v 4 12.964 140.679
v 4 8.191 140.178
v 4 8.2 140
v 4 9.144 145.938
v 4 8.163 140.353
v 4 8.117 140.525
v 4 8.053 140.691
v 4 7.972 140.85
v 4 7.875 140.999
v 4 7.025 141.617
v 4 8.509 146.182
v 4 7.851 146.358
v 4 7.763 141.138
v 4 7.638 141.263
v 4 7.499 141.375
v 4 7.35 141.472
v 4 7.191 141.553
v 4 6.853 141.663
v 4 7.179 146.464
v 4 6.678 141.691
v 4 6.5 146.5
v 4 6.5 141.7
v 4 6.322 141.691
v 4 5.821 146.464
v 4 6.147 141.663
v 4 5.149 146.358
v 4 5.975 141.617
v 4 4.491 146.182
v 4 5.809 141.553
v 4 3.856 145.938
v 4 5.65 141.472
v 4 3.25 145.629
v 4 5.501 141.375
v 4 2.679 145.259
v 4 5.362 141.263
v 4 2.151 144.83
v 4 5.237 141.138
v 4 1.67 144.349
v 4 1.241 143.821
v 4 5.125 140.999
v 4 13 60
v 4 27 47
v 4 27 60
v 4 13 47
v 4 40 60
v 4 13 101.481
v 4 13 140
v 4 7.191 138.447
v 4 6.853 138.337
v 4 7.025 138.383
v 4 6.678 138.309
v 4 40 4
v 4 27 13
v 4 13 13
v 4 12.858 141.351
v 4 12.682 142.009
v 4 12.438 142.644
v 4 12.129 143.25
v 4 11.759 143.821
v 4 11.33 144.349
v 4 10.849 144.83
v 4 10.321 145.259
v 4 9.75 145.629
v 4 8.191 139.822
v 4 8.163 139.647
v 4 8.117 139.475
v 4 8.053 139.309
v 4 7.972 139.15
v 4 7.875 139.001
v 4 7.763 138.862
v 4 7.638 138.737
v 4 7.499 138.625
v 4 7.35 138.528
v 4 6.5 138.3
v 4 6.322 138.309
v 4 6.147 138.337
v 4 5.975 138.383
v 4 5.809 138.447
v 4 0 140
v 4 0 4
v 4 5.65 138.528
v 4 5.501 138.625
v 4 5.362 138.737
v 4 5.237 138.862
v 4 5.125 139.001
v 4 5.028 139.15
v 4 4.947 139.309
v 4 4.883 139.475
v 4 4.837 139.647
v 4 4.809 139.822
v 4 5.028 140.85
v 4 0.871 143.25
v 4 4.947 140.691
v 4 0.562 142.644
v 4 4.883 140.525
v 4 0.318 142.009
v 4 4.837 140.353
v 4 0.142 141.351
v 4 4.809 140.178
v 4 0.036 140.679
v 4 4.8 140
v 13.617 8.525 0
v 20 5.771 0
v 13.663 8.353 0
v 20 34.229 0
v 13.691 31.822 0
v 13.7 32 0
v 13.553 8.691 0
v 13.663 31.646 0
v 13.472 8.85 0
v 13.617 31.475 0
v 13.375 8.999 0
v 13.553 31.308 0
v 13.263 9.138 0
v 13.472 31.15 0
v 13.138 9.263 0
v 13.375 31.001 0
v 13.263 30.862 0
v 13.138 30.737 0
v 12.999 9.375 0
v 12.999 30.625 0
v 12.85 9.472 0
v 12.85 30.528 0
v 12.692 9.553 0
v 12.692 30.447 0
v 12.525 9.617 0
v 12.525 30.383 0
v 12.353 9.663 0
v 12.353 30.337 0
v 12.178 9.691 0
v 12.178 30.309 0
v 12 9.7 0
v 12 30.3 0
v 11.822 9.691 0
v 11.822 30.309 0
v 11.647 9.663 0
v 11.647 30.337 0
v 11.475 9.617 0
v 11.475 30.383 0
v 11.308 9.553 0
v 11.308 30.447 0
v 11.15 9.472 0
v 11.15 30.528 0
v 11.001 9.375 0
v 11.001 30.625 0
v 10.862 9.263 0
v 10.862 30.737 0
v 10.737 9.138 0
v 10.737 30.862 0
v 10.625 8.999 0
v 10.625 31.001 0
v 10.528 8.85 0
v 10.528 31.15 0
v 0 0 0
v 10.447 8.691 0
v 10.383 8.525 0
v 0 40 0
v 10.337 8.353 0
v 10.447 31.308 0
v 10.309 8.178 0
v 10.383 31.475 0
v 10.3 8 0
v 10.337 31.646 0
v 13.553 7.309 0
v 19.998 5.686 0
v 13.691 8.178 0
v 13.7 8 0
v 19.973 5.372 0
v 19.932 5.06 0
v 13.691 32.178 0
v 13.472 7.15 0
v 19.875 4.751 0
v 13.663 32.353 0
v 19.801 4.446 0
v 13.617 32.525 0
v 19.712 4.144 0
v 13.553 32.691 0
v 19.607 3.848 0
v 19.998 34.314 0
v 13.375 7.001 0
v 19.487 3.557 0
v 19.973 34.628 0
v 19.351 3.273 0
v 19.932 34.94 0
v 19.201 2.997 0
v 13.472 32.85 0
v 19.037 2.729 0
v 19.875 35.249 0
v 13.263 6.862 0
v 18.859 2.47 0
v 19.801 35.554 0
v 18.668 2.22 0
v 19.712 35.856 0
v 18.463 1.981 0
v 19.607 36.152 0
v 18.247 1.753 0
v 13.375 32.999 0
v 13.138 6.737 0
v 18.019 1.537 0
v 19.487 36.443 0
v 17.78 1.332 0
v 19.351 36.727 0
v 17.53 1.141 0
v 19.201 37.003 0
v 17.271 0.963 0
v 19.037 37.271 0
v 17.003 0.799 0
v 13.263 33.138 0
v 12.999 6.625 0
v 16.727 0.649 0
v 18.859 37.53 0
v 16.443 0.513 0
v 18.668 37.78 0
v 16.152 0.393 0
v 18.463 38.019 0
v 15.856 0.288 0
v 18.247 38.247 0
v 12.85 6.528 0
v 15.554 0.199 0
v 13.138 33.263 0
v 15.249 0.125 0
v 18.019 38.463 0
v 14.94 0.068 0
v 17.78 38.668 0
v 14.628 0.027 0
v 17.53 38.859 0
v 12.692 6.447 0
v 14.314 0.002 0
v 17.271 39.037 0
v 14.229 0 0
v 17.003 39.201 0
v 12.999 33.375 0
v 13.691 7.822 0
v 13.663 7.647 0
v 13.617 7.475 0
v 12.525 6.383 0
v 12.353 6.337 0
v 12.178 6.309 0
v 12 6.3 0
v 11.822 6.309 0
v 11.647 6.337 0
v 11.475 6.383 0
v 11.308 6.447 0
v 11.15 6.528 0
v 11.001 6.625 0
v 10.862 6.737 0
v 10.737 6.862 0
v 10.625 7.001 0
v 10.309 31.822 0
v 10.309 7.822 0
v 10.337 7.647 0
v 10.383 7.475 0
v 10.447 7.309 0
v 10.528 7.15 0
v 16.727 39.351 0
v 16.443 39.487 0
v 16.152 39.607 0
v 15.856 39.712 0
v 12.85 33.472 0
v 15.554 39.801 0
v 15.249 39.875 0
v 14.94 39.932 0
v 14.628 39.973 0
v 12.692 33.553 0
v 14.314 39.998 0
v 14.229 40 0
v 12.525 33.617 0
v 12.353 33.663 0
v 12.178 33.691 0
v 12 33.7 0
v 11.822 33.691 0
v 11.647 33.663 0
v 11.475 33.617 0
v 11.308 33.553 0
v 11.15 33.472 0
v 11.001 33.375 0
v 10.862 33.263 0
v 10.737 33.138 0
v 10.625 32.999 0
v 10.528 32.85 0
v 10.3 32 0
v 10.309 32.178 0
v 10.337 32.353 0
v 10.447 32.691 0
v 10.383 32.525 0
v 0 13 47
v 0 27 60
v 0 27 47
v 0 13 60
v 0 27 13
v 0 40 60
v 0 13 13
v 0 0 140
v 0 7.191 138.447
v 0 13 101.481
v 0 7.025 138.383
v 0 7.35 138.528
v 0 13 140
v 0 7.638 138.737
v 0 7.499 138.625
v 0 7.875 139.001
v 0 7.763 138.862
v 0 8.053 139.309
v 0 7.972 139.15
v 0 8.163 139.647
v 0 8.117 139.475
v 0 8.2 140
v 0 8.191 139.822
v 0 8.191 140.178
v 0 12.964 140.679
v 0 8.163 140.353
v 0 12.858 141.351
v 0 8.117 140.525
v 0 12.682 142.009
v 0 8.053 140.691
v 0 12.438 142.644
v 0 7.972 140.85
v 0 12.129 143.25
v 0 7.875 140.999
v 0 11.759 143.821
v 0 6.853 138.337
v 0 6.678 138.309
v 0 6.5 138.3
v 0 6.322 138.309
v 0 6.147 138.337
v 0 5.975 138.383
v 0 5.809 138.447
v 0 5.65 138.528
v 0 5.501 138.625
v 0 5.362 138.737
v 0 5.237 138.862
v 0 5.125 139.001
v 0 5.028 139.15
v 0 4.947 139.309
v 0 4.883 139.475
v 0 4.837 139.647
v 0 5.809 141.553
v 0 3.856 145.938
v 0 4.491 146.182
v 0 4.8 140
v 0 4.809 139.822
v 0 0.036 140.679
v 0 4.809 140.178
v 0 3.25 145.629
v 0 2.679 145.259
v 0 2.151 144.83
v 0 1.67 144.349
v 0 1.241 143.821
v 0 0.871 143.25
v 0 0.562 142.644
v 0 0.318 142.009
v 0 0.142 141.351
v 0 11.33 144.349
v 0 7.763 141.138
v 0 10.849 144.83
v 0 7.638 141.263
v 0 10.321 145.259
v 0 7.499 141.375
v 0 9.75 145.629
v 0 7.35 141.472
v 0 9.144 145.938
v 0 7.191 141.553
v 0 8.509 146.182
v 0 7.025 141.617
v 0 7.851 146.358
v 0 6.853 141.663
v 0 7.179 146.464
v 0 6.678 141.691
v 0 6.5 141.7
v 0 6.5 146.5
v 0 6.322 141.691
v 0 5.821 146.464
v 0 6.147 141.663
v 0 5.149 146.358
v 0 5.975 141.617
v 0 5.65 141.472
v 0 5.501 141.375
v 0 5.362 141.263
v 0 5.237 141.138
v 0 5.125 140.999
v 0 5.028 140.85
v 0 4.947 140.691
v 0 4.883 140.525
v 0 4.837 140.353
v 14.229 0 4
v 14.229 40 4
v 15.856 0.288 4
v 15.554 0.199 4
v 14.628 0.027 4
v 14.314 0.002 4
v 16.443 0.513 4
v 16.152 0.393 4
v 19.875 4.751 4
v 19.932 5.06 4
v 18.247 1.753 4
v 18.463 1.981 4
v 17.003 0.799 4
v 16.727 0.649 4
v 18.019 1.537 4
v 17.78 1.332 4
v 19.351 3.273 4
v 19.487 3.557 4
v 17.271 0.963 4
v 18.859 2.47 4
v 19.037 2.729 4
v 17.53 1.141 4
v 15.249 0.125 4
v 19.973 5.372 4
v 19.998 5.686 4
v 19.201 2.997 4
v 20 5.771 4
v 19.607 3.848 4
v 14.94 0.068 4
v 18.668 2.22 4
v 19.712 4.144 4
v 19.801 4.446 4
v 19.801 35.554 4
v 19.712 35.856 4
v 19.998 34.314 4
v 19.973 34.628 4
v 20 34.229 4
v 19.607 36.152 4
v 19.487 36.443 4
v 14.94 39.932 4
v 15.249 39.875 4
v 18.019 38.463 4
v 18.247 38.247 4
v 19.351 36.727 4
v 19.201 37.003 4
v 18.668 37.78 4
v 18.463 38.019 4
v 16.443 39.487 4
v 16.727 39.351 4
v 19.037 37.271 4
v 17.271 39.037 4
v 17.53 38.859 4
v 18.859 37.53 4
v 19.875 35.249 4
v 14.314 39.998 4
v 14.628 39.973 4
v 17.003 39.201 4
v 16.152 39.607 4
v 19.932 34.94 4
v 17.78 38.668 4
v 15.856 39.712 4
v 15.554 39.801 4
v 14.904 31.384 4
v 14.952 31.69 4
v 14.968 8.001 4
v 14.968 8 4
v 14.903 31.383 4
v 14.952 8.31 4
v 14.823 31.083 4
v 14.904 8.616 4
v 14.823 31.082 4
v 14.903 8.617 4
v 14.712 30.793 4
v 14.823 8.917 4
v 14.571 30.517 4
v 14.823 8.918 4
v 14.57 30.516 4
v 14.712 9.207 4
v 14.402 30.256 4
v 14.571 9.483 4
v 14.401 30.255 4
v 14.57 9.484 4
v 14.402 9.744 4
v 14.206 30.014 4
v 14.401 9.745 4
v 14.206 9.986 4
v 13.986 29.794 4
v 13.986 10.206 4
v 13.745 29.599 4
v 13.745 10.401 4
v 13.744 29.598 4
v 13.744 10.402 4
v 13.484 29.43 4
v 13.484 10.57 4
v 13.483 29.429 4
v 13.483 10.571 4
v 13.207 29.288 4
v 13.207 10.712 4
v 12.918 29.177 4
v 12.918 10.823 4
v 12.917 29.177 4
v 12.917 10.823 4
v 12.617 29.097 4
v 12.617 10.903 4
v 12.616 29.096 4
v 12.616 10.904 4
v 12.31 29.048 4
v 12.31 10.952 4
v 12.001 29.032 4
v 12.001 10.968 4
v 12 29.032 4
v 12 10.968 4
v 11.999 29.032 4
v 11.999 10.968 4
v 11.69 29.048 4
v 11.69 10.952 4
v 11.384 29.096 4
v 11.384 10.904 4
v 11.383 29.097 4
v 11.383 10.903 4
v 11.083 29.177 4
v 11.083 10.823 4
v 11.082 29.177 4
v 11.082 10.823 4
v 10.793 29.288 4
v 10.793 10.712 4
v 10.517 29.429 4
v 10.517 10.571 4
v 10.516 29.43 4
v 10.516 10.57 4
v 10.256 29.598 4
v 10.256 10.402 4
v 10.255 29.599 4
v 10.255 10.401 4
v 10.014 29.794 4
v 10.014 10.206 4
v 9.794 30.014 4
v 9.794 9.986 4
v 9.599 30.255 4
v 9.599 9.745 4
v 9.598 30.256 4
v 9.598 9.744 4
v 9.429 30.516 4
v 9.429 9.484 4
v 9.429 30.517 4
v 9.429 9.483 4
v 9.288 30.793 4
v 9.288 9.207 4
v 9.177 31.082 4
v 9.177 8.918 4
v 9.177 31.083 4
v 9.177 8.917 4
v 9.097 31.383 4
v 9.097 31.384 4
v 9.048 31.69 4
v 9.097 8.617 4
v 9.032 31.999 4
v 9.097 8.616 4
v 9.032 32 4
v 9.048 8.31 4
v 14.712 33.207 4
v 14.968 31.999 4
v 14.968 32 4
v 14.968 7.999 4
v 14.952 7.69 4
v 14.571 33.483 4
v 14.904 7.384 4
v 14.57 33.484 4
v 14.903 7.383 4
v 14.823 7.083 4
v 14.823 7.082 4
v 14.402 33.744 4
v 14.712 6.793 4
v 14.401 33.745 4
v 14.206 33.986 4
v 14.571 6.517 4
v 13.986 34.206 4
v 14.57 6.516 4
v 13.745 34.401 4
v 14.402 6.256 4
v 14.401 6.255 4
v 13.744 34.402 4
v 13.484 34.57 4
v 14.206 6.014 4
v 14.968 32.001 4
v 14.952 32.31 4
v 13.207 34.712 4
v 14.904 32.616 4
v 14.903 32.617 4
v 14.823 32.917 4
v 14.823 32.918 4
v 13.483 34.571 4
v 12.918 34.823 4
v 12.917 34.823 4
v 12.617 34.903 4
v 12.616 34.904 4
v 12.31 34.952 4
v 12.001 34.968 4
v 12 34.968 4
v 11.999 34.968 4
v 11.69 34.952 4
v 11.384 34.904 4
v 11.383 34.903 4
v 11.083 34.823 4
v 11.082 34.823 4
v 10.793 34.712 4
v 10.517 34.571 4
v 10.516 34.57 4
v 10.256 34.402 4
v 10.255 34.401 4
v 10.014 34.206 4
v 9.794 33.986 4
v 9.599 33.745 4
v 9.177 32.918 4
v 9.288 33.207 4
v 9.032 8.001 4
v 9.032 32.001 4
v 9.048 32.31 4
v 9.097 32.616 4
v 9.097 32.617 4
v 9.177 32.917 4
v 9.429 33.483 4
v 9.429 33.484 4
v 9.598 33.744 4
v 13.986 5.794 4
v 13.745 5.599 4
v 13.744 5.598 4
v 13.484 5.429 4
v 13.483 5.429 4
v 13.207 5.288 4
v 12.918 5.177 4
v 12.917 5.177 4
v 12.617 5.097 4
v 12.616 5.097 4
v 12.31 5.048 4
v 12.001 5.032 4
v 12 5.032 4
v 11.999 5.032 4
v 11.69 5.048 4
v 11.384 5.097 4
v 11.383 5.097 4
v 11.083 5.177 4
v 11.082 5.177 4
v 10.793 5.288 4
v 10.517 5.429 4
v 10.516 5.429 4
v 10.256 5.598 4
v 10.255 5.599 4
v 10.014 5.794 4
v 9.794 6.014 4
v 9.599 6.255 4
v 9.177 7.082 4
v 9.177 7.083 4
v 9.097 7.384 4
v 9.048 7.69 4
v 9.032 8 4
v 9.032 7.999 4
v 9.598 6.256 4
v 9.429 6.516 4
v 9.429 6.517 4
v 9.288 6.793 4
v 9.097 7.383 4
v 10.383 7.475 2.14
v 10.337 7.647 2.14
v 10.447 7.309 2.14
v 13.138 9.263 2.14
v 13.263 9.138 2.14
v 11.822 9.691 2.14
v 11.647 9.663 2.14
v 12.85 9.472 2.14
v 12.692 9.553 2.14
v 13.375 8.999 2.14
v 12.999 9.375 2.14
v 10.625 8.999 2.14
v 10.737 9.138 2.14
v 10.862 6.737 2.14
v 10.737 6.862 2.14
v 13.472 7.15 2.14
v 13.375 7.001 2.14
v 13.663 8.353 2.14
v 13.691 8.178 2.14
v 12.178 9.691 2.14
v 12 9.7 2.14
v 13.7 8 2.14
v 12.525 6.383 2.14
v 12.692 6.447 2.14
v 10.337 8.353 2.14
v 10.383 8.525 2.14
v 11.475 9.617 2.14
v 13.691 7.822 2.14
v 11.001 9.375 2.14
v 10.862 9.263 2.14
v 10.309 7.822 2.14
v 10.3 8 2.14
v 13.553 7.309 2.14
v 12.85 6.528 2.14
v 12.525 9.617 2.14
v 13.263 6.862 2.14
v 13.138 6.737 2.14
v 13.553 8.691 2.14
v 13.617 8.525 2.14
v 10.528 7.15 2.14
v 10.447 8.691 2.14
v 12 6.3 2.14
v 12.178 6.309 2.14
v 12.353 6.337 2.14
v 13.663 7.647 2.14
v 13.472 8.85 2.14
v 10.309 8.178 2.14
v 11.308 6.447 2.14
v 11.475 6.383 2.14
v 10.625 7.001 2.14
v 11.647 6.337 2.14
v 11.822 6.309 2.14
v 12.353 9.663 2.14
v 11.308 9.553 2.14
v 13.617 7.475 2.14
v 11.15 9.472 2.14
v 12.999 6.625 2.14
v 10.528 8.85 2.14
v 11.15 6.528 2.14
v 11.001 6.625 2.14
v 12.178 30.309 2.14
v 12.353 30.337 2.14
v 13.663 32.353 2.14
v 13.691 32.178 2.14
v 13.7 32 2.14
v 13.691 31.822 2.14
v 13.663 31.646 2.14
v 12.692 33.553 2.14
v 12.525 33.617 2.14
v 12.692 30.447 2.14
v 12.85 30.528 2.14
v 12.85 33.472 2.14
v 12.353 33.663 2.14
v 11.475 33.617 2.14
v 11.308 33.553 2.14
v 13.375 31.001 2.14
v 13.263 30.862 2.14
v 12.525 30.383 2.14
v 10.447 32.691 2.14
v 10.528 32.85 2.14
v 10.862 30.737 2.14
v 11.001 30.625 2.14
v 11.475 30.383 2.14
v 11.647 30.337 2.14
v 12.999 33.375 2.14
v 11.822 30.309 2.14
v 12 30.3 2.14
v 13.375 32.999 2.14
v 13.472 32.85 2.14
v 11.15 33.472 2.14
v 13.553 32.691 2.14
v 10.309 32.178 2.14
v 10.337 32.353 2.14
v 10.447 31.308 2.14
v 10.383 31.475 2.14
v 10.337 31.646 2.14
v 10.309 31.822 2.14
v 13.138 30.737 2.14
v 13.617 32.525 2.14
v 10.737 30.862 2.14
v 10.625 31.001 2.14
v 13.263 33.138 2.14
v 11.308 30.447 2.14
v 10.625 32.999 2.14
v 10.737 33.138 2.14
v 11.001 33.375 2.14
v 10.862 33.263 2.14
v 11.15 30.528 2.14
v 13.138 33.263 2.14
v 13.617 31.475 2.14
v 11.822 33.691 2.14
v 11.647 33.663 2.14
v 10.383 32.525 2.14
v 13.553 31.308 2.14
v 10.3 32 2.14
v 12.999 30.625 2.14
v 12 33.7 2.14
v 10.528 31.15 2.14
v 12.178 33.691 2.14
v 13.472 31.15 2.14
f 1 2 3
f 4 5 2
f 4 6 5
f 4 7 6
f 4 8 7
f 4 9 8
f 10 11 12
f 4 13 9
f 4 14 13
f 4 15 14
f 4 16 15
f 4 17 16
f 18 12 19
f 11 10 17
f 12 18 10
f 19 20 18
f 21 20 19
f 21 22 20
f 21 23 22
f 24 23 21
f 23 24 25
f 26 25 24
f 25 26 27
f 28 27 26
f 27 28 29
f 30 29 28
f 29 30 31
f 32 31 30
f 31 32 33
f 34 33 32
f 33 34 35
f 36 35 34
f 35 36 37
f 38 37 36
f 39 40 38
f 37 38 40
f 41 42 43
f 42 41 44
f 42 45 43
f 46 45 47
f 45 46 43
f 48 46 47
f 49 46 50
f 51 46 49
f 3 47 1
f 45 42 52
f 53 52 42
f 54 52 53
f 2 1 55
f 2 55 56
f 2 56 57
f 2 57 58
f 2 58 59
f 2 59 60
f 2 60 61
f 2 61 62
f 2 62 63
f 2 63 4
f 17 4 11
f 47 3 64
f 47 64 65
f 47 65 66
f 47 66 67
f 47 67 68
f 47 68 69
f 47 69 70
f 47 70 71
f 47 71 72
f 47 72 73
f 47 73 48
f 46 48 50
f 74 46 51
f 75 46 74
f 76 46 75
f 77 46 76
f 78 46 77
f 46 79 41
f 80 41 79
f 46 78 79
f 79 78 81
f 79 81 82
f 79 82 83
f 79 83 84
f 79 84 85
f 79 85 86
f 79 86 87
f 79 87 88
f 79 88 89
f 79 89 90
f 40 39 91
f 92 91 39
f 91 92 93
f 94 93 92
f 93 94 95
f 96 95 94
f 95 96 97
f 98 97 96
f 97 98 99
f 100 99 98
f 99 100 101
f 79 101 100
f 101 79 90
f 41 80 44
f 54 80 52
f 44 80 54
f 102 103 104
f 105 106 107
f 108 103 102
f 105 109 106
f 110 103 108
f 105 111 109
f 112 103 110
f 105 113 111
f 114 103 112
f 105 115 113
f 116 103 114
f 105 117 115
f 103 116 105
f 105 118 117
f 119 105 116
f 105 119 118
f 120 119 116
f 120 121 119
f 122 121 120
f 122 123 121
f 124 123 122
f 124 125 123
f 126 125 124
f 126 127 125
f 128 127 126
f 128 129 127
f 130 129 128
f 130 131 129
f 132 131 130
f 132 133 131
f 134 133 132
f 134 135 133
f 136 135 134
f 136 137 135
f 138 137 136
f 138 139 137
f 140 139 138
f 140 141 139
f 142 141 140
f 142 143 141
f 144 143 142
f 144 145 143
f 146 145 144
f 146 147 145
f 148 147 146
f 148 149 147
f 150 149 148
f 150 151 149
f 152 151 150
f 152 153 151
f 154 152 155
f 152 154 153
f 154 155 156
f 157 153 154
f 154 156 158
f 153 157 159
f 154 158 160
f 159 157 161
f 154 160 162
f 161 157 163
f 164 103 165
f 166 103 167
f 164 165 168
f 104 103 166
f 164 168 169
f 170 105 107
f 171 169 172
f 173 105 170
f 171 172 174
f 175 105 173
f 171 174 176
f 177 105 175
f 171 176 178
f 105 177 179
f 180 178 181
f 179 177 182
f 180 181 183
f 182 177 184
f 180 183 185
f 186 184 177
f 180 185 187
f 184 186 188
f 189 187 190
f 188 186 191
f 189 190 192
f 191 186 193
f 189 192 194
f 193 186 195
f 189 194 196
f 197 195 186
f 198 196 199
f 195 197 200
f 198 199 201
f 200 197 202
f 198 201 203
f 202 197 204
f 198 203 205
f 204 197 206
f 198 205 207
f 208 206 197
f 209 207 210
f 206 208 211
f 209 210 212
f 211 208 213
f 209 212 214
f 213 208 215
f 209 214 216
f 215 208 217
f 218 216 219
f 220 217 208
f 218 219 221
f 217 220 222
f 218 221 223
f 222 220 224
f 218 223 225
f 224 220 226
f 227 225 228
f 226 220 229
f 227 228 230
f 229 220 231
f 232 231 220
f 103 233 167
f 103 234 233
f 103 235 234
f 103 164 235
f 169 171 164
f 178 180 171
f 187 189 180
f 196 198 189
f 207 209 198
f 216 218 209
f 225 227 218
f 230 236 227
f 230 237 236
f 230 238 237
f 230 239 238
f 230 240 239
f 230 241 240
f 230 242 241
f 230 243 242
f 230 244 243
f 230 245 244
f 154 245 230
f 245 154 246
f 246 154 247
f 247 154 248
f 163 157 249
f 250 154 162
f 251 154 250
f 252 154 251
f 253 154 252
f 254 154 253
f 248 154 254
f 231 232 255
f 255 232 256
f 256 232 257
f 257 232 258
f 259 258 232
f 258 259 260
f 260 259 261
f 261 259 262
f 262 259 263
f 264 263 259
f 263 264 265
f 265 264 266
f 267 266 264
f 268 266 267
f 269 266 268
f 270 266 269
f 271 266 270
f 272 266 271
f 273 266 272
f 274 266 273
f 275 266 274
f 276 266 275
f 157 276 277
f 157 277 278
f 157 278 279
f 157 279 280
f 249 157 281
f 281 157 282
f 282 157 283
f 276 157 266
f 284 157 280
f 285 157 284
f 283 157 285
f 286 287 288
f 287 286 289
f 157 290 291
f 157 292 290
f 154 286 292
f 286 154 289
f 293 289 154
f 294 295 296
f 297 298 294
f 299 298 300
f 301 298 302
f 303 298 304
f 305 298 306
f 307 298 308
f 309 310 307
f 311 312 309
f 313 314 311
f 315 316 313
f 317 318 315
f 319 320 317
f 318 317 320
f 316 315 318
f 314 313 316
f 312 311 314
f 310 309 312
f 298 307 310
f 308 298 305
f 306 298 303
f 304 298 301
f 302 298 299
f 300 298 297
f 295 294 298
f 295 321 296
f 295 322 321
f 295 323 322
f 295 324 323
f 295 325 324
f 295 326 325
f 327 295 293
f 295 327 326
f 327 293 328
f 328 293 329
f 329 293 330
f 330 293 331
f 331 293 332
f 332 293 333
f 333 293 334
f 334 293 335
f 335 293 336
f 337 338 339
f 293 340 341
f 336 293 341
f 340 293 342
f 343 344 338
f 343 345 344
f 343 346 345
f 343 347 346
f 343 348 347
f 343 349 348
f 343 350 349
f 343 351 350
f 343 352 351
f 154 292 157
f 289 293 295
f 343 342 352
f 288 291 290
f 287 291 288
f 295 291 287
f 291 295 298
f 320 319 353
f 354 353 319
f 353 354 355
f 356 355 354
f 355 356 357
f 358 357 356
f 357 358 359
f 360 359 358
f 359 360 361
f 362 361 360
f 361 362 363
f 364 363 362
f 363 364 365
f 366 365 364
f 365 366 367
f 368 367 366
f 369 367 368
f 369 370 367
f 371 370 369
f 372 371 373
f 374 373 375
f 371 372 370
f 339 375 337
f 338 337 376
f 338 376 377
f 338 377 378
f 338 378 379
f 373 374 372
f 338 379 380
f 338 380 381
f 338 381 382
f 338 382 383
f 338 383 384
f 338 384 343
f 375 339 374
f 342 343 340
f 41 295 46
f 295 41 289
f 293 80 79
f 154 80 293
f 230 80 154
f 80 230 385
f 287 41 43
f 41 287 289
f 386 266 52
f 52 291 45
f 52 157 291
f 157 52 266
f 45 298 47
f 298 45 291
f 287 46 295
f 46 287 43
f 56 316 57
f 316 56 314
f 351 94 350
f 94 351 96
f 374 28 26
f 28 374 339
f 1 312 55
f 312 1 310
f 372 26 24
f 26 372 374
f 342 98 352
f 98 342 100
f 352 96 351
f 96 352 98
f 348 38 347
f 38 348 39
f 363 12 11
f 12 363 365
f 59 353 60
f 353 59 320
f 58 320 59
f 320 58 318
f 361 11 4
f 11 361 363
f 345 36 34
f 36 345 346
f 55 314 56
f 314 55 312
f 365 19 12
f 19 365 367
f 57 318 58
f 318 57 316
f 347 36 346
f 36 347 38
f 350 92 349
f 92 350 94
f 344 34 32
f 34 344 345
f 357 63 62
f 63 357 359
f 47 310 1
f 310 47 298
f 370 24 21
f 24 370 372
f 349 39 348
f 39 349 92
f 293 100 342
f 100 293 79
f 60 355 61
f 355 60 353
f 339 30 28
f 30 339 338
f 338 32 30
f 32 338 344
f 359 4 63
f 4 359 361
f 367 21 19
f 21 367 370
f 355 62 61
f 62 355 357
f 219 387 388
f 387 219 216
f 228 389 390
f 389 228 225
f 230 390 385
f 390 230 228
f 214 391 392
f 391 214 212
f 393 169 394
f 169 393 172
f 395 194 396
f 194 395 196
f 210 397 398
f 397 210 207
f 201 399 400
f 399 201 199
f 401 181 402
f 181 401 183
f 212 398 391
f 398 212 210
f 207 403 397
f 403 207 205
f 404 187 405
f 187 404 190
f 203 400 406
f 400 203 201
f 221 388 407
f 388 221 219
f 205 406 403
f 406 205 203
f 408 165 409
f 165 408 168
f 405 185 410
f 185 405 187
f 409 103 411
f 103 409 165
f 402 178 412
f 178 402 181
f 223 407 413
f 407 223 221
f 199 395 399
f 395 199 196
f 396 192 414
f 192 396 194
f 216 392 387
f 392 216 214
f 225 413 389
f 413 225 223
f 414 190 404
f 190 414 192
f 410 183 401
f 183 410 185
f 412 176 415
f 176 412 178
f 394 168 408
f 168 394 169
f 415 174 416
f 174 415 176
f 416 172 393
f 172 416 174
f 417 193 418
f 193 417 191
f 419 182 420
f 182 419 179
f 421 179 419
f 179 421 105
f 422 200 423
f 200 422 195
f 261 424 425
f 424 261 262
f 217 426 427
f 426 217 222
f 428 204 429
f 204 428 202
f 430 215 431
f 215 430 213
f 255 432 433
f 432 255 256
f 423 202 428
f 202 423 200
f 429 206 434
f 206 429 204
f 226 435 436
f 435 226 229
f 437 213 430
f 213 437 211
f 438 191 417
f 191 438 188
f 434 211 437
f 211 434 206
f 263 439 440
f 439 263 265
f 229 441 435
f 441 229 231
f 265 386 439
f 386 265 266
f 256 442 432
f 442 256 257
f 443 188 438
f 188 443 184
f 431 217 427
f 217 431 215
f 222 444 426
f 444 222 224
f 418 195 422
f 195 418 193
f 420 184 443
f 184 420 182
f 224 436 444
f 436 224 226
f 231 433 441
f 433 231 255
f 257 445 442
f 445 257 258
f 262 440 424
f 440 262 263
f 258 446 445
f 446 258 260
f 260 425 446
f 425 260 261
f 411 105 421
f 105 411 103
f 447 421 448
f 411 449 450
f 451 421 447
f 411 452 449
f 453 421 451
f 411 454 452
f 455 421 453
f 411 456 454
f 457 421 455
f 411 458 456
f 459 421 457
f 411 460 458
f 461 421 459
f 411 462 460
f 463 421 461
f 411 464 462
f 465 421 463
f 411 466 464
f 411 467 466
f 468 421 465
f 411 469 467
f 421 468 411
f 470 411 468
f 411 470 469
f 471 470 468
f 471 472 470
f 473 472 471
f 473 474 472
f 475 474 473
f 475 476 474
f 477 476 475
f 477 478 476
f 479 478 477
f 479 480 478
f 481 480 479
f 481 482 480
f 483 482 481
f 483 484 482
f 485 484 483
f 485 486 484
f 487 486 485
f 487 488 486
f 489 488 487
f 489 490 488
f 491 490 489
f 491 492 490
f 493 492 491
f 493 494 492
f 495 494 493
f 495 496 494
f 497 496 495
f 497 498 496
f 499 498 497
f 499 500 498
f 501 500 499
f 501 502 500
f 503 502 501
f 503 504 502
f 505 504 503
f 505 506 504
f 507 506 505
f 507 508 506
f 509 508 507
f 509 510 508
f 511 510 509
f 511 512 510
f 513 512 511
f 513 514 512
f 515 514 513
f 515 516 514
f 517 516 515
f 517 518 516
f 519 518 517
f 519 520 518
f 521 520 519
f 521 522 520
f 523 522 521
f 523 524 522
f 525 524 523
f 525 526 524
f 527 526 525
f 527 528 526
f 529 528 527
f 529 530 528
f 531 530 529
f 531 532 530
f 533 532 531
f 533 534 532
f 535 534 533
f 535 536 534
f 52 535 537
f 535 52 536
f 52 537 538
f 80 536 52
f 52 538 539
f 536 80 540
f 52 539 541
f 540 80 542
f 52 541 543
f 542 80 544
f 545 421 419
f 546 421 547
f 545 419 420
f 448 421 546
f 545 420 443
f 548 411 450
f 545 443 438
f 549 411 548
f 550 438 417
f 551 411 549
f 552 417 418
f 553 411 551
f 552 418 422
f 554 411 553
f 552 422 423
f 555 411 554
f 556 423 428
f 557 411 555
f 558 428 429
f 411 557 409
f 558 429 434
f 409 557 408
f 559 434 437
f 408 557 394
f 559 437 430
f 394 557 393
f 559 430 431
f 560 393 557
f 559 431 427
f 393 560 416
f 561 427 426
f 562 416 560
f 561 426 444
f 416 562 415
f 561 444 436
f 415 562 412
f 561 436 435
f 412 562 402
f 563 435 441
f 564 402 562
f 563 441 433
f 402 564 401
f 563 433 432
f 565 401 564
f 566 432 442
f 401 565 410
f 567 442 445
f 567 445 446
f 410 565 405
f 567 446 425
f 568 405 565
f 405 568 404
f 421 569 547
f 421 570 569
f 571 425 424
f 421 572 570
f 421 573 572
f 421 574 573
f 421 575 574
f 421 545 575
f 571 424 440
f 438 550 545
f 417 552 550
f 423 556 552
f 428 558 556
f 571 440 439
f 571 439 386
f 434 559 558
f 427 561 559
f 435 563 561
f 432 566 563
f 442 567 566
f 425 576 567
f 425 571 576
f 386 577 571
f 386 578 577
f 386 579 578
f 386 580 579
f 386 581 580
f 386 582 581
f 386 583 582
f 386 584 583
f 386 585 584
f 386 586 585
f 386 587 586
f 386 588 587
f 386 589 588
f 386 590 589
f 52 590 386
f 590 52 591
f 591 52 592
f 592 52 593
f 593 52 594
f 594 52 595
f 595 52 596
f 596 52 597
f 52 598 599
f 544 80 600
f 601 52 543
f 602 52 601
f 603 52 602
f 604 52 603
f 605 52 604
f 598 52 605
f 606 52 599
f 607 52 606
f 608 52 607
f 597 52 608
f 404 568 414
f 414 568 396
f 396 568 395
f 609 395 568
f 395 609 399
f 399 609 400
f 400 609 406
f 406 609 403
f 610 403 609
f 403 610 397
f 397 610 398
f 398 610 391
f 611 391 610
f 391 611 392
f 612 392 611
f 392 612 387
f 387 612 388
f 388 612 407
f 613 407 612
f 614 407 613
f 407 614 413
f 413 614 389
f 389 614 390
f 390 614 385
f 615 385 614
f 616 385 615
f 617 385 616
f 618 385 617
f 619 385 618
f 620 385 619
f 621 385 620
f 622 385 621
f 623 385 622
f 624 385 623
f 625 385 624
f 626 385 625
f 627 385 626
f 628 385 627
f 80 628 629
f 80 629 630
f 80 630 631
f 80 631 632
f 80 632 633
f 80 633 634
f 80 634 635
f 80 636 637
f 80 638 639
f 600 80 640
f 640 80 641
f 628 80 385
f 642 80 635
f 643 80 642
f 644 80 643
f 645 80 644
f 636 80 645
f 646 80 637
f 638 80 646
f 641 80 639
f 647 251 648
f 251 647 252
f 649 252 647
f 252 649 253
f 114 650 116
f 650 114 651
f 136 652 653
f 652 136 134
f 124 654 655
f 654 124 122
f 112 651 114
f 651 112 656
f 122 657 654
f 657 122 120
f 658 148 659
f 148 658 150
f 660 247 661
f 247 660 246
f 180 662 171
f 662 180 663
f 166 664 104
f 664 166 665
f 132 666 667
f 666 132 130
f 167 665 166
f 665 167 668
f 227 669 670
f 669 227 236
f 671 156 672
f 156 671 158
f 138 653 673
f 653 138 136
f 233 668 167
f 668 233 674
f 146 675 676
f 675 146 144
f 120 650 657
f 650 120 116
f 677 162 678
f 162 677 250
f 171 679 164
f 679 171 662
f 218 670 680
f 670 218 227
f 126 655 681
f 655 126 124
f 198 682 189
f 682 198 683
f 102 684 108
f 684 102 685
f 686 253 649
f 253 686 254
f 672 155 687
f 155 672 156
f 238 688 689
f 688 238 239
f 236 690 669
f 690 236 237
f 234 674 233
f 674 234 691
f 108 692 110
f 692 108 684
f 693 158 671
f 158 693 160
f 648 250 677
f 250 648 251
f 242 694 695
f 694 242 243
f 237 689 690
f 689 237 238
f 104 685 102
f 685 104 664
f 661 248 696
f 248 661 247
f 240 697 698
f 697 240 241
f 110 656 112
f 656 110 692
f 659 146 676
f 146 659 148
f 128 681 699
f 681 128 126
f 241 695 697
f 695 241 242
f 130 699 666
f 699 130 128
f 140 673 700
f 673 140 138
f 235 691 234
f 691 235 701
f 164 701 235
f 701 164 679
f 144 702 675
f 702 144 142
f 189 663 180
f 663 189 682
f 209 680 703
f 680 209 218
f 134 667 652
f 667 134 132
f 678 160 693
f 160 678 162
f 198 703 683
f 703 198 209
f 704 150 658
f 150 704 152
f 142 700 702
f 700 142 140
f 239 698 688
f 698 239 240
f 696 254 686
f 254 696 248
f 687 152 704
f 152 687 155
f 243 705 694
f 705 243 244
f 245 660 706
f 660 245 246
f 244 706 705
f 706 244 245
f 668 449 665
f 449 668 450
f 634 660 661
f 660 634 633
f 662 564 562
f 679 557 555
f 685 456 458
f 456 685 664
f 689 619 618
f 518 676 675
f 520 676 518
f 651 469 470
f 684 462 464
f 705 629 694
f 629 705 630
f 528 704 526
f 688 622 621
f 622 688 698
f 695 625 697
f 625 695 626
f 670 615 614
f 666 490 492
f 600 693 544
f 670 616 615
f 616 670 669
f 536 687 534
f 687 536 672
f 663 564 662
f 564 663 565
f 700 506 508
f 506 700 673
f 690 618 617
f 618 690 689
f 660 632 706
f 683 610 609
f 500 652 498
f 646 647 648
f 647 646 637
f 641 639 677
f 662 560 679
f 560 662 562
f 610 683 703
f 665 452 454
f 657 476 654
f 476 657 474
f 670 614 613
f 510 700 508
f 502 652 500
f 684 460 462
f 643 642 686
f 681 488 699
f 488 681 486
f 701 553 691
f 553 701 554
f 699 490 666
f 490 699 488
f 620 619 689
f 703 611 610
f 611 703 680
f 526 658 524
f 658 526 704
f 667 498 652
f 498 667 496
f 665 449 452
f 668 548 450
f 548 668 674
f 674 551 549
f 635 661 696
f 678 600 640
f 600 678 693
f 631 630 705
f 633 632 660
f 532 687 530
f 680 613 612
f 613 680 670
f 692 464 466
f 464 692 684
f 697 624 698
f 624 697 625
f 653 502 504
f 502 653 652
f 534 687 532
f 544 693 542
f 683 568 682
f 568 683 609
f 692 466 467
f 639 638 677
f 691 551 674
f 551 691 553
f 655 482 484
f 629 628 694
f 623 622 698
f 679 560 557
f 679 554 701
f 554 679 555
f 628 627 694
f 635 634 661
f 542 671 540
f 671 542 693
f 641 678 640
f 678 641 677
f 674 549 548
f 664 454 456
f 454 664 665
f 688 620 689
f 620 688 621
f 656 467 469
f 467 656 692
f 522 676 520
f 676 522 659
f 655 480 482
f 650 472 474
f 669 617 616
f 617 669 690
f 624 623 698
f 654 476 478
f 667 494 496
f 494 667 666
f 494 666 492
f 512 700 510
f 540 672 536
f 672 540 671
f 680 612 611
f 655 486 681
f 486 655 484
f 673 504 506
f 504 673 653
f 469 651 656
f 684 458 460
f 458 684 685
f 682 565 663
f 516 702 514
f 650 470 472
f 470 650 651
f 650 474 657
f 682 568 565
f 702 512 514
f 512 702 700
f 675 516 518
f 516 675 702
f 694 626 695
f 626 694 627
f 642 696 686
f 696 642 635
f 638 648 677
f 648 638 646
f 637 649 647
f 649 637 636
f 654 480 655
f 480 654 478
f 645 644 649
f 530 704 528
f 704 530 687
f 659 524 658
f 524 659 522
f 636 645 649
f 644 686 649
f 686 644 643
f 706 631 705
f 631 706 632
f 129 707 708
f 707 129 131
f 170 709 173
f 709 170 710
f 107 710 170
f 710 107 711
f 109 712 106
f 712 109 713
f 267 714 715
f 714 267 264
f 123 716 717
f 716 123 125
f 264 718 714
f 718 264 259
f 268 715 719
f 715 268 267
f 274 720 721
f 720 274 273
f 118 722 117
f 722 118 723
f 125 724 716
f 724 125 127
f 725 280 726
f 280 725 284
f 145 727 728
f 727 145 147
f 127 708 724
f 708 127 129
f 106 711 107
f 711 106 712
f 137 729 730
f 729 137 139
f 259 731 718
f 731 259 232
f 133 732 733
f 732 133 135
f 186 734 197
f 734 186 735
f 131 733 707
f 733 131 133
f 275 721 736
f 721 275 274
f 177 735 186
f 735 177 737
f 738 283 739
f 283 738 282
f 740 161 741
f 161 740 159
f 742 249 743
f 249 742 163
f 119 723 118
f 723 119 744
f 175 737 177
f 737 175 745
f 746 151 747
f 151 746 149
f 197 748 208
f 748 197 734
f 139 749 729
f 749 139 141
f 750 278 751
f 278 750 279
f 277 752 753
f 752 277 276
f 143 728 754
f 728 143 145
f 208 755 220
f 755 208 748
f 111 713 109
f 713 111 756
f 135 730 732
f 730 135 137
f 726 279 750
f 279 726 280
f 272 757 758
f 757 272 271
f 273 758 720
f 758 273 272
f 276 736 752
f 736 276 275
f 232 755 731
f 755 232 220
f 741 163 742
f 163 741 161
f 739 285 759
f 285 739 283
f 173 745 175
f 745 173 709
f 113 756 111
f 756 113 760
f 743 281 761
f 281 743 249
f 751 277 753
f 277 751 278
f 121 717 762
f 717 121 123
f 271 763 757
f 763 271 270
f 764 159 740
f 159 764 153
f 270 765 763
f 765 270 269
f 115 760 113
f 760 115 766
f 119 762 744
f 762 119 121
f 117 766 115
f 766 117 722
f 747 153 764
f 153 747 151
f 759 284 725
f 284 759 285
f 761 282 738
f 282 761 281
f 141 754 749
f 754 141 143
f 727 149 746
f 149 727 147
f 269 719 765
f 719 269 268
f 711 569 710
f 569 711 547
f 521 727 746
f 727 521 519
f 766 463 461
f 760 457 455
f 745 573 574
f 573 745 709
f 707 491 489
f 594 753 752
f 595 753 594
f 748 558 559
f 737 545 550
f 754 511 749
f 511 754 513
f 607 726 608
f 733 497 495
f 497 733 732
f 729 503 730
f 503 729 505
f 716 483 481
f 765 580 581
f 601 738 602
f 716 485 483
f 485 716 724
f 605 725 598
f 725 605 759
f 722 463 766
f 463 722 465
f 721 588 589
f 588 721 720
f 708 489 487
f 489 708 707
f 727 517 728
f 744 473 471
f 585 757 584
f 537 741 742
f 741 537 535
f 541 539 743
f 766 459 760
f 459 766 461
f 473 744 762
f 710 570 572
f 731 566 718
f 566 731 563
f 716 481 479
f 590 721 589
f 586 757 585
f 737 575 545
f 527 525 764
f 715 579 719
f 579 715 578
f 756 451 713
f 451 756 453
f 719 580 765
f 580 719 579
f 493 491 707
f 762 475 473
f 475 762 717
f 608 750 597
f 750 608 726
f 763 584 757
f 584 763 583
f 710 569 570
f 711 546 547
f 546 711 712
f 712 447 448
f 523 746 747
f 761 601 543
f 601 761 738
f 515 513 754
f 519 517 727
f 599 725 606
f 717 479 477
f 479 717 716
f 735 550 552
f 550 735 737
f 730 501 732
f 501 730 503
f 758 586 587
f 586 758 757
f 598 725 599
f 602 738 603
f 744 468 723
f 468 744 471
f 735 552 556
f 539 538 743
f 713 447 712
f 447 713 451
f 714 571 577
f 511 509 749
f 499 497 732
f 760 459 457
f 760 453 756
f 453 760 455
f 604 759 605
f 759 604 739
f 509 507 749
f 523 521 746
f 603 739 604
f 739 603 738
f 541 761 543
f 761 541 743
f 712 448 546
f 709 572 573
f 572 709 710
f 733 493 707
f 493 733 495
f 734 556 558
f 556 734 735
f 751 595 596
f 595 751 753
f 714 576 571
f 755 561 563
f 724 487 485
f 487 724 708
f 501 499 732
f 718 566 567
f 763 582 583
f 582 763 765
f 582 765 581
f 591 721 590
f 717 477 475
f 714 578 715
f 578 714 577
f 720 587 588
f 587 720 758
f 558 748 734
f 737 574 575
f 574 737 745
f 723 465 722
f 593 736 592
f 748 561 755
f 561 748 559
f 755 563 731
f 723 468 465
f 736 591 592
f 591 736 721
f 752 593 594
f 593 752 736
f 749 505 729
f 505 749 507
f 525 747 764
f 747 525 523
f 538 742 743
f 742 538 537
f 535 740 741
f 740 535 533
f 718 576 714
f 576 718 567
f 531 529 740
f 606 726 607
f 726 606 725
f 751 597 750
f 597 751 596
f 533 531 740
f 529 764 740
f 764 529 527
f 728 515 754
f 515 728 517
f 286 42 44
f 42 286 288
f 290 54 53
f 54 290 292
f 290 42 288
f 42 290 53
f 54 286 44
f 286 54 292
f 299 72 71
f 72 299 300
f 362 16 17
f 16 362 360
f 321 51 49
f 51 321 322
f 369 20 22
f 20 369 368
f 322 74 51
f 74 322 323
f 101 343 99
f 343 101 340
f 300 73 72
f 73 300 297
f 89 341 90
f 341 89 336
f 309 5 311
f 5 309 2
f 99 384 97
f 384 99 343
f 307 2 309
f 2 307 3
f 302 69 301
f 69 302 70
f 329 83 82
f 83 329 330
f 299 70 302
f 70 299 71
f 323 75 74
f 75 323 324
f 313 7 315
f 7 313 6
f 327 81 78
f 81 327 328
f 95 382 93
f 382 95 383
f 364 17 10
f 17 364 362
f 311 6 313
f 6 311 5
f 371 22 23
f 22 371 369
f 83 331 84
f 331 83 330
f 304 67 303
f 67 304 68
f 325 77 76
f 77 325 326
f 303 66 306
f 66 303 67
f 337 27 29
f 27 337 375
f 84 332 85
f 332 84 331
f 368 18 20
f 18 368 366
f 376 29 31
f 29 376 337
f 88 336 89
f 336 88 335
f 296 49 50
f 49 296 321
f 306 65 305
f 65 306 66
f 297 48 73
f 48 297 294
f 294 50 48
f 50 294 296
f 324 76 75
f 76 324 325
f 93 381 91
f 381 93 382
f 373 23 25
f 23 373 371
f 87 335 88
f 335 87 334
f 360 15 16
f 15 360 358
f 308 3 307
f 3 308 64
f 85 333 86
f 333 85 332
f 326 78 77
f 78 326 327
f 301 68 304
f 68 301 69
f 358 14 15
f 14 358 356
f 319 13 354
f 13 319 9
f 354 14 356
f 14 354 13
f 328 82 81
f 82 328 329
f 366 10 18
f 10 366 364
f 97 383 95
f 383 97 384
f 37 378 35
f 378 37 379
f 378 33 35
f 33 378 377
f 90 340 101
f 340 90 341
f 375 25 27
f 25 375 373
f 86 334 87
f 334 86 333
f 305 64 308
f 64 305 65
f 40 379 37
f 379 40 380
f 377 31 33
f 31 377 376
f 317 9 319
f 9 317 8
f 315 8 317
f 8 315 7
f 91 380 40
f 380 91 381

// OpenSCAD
// file: ../params/support-simple.scad
support_height = 140;
support_width = 40;
support_motor_support_height = 60;
support_thickness = 4;
bars_width = 13;
horizontal_support_width = 20;
support_throw_diameter = 3.4;
horizontal_support_throw_diameter = 3.4;
horizontal_support_thickness = 5;
// file: subpieces/support.scad
module components_support_VerticalHorizontalSupport(support_height = 140, support_width = 54, support_motor_support_height = 60, support_thickness = 3, bars_width = 13, horizontal_support_width = 30, fn = 20) {
    union() {
        components_support_VerticalSupport(support_height, support_width, support_motor_support_height, support_thickness, bars_width, horizontal_support_width, fn);
        // components_support_HorizontalSupport(support_width, support_thickness, horizontal_support_width);
        components_support_HorizontalSupportRounded(support_width, support_thickness, horizontal_support_width);
    }
}


module components_support_VerticalSupport(support_height = 140, support_width = 54, support_motor_support_height = 60, support_thickness = 3, bars_width = 13, horizontal_support_width = 30, fn = 20) {
    union() {
        translate([0,0,0])
        cube([support_thickness, bars_width, support_height]);

        translate([0,0,0])
        cube([support_thickness, support_width, support_motor_support_height]);

        translate([0, 0, support_height])
        rotate([0,90,0])
        linear_extrude(height = support_thickness, center = false, convexity = 10, twist = 0)
        polygon([
            [0, 0],
            [0, bars_width],
            [support_height - support_motor_support_height, support_width],
            [support_height - support_motor_support_height, support_width - bars_width]
        ]);

        translate([0, bars_width / 2, support_height])
        rotate([0,90,0])
        cylinder(h=support_thickness, d=bars_width, center=false, $fn=fn);
    }
}


module components_support_VerticalSupportEconomicPlastic(support_height, support_width, support_motor_support_height, support_thickness, bars_width, horizontal_support_width, fn=60) {
    epsilon = 0.1;
    pos_x = support_width / 2;
    pos_y = support_motor_support_height / 2;

    translate([0, pos_x, pos_y])
        cube([support_thickness * 2 + epsilon, support_width  - (bars_width * 2), support_motor_support_height  - (bars_width * 2)], center = true);
}


module components_support_VerticalSupportThrows(support_height = 140, support_throw_diameter = 3, bars_width = 13, fn = 60) {
    translate([0, bars_width / 2, support_height])
    rotate([0,90,0])
    cylinder(h=10, d=support_throw_diameter, center=true, $fn=fn);
}


module components_support_HorizontalSupport(support_width = 54, support_thickness = 3, horizontal_support_width = 30) {
    translate([0,0,0])
    cube([horizontal_support_width, support_width, support_thickness]);
}


module components_support_RoundedDifference(diameter_rounded = 20, thickness = 3, fn = 60) {
    epsilon = 0.1;
    difference(){
        cube([diameter_rounded, diameter_rounded, thickness], center=true);
        cylinder(h = thickness + epsilon, d = diameter_rounded, $fn = fn, center=true);
        translate([-diameter_rounded / 2, 0, 0]) {
            cube([diameter_rounded + epsilon, diameter_rounded + epsilon, thickness + epsilon], center=true);
        }
        translate([0,-diameter_rounded / 2, 0]) {
            cube([diameter_rounded + epsilon, diameter_rounded + epsilon, thickness + epsilon], center=true);
        }
    }
}


module components_support_HorizontalSupportRounded(support_width = 54, support_thickness = 3, horizontal_support_width = 30) {

    epsilon = 0.001;

    difference() {
        components_support_HorizontalSupport(support_width, support_thickness, horizontal_support_width);

        diameter_rounded = (support_width - support_thickness) / 3;

        translate([horizontal_support_width - (diameter_rounded / 2), diameter_rounded / 2, support_thickness / 2]) {
            rotate([0,0, -90])
            scale([1 * (1 + epsilon), 1 * (1 + epsilon),1.5])
            components_support_RoundedDifference(diameter_rounded, thickness = 3, fn = 120);
        }

        translate([horizontal_support_width - (diameter_rounded / 2), support_width - diameter_rounded / 2, support_thickness / 2]) {
            scale([1 * (1 + epsilon), 1 * (1 + epsilon),1.5])
            components_support_RoundedDifference(diameter_rounded, thickness = 3, fn = 120);
        }

    }
}



module components_support_HorizontalSupportThrows(
        horizontal_support_width = 20,
        support_width = 54,
        horizontal_support_throw_diameter = 4,
        support_thickness = 3,
        horizontal_support_thickness = 3,
        fn = 60) {

    epsilon = 0.01;
    horizontal_support_throw_radius = horizontal_support_throw_diameter / 2;

    cone_throw_heigh = horizontal_support_throw_radius * 1.1;
    cone_throw_r2 = horizontal_support_throw_radius * 1.75;

    //horizontal_support_thickness = 3;
echo (horizontal_support_thickness);
    union(){
        translate([support_thickness + (horizontal_support_width - support_thickness) / 2,  (horizontal_support_width - support_thickness) / 2, 0]) {
            cylinder(h = horizontal_support_thickness * 2, d=horizontal_support_throw_diameter, center=true, $fn=fn);

            // cylinder(h = 2.2, r1 = 2, r2 = 3.5, center = true, $fn=fn); // Example
            translate([0,0, horizontal_support_thickness - cone_throw_heigh + epsilon])
            cylinder(h = cone_throw_heigh, r1 = horizontal_support_throw_radius, r2 = cone_throw_r2, center = false, $fn=fn);
        }

        translate([support_thickness + (horizontal_support_width - support_thickness) / 2, support_width - ((horizontal_support_width - support_thickness) / 2), 0]){
            cylinder(h=horizontal_support_thickness * 2, d=horizontal_support_throw_diameter, center=true, $fn=fn);

            translate([0,0, horizontal_support_thickness - cone_throw_heigh + epsilon])
            cylinder(h = cone_throw_heigh, r1 = horizontal_support_throw_radius, r2 = cone_throw_r2, center = false, $fn=fn);
        }
    }
}
// file: simpleSupport1Piece.scad
include <subpieces/support.scad>
include <../params/support-simple.scad>

simpleSupport1Piece();

module simpleSupport1Piece() {
    mirror([1,0,0])
        difference() {
            components_support_VerticalHorizontalSupport(support_height, support_width, support_motor_support_height, support_thickness, bars_width, horizontal_support_width, fn=60);
            components_support_VerticalSupportEconomicPlastic(support_height, support_width, support_motor_support_height, support_thickness, bars_width, horizontal_support_width, fn=60);
            components_support_VerticalSupportThrows(support_height, support_throw_diameter, bars_width);
            components_support_HorizontalSupportThrows(
                horizontal_support_width,
                support_width,
                horizontal_support_throw_diameter,
                support_thickness,
                support_thickness
            );
        }
}
// main file
use <simpleSupport1Piece.scad>

module simpleSupport2Piece() {
    mirror([1,0,0])
        simpleSupport1Piece();
}

simpleSupport2Piece();
